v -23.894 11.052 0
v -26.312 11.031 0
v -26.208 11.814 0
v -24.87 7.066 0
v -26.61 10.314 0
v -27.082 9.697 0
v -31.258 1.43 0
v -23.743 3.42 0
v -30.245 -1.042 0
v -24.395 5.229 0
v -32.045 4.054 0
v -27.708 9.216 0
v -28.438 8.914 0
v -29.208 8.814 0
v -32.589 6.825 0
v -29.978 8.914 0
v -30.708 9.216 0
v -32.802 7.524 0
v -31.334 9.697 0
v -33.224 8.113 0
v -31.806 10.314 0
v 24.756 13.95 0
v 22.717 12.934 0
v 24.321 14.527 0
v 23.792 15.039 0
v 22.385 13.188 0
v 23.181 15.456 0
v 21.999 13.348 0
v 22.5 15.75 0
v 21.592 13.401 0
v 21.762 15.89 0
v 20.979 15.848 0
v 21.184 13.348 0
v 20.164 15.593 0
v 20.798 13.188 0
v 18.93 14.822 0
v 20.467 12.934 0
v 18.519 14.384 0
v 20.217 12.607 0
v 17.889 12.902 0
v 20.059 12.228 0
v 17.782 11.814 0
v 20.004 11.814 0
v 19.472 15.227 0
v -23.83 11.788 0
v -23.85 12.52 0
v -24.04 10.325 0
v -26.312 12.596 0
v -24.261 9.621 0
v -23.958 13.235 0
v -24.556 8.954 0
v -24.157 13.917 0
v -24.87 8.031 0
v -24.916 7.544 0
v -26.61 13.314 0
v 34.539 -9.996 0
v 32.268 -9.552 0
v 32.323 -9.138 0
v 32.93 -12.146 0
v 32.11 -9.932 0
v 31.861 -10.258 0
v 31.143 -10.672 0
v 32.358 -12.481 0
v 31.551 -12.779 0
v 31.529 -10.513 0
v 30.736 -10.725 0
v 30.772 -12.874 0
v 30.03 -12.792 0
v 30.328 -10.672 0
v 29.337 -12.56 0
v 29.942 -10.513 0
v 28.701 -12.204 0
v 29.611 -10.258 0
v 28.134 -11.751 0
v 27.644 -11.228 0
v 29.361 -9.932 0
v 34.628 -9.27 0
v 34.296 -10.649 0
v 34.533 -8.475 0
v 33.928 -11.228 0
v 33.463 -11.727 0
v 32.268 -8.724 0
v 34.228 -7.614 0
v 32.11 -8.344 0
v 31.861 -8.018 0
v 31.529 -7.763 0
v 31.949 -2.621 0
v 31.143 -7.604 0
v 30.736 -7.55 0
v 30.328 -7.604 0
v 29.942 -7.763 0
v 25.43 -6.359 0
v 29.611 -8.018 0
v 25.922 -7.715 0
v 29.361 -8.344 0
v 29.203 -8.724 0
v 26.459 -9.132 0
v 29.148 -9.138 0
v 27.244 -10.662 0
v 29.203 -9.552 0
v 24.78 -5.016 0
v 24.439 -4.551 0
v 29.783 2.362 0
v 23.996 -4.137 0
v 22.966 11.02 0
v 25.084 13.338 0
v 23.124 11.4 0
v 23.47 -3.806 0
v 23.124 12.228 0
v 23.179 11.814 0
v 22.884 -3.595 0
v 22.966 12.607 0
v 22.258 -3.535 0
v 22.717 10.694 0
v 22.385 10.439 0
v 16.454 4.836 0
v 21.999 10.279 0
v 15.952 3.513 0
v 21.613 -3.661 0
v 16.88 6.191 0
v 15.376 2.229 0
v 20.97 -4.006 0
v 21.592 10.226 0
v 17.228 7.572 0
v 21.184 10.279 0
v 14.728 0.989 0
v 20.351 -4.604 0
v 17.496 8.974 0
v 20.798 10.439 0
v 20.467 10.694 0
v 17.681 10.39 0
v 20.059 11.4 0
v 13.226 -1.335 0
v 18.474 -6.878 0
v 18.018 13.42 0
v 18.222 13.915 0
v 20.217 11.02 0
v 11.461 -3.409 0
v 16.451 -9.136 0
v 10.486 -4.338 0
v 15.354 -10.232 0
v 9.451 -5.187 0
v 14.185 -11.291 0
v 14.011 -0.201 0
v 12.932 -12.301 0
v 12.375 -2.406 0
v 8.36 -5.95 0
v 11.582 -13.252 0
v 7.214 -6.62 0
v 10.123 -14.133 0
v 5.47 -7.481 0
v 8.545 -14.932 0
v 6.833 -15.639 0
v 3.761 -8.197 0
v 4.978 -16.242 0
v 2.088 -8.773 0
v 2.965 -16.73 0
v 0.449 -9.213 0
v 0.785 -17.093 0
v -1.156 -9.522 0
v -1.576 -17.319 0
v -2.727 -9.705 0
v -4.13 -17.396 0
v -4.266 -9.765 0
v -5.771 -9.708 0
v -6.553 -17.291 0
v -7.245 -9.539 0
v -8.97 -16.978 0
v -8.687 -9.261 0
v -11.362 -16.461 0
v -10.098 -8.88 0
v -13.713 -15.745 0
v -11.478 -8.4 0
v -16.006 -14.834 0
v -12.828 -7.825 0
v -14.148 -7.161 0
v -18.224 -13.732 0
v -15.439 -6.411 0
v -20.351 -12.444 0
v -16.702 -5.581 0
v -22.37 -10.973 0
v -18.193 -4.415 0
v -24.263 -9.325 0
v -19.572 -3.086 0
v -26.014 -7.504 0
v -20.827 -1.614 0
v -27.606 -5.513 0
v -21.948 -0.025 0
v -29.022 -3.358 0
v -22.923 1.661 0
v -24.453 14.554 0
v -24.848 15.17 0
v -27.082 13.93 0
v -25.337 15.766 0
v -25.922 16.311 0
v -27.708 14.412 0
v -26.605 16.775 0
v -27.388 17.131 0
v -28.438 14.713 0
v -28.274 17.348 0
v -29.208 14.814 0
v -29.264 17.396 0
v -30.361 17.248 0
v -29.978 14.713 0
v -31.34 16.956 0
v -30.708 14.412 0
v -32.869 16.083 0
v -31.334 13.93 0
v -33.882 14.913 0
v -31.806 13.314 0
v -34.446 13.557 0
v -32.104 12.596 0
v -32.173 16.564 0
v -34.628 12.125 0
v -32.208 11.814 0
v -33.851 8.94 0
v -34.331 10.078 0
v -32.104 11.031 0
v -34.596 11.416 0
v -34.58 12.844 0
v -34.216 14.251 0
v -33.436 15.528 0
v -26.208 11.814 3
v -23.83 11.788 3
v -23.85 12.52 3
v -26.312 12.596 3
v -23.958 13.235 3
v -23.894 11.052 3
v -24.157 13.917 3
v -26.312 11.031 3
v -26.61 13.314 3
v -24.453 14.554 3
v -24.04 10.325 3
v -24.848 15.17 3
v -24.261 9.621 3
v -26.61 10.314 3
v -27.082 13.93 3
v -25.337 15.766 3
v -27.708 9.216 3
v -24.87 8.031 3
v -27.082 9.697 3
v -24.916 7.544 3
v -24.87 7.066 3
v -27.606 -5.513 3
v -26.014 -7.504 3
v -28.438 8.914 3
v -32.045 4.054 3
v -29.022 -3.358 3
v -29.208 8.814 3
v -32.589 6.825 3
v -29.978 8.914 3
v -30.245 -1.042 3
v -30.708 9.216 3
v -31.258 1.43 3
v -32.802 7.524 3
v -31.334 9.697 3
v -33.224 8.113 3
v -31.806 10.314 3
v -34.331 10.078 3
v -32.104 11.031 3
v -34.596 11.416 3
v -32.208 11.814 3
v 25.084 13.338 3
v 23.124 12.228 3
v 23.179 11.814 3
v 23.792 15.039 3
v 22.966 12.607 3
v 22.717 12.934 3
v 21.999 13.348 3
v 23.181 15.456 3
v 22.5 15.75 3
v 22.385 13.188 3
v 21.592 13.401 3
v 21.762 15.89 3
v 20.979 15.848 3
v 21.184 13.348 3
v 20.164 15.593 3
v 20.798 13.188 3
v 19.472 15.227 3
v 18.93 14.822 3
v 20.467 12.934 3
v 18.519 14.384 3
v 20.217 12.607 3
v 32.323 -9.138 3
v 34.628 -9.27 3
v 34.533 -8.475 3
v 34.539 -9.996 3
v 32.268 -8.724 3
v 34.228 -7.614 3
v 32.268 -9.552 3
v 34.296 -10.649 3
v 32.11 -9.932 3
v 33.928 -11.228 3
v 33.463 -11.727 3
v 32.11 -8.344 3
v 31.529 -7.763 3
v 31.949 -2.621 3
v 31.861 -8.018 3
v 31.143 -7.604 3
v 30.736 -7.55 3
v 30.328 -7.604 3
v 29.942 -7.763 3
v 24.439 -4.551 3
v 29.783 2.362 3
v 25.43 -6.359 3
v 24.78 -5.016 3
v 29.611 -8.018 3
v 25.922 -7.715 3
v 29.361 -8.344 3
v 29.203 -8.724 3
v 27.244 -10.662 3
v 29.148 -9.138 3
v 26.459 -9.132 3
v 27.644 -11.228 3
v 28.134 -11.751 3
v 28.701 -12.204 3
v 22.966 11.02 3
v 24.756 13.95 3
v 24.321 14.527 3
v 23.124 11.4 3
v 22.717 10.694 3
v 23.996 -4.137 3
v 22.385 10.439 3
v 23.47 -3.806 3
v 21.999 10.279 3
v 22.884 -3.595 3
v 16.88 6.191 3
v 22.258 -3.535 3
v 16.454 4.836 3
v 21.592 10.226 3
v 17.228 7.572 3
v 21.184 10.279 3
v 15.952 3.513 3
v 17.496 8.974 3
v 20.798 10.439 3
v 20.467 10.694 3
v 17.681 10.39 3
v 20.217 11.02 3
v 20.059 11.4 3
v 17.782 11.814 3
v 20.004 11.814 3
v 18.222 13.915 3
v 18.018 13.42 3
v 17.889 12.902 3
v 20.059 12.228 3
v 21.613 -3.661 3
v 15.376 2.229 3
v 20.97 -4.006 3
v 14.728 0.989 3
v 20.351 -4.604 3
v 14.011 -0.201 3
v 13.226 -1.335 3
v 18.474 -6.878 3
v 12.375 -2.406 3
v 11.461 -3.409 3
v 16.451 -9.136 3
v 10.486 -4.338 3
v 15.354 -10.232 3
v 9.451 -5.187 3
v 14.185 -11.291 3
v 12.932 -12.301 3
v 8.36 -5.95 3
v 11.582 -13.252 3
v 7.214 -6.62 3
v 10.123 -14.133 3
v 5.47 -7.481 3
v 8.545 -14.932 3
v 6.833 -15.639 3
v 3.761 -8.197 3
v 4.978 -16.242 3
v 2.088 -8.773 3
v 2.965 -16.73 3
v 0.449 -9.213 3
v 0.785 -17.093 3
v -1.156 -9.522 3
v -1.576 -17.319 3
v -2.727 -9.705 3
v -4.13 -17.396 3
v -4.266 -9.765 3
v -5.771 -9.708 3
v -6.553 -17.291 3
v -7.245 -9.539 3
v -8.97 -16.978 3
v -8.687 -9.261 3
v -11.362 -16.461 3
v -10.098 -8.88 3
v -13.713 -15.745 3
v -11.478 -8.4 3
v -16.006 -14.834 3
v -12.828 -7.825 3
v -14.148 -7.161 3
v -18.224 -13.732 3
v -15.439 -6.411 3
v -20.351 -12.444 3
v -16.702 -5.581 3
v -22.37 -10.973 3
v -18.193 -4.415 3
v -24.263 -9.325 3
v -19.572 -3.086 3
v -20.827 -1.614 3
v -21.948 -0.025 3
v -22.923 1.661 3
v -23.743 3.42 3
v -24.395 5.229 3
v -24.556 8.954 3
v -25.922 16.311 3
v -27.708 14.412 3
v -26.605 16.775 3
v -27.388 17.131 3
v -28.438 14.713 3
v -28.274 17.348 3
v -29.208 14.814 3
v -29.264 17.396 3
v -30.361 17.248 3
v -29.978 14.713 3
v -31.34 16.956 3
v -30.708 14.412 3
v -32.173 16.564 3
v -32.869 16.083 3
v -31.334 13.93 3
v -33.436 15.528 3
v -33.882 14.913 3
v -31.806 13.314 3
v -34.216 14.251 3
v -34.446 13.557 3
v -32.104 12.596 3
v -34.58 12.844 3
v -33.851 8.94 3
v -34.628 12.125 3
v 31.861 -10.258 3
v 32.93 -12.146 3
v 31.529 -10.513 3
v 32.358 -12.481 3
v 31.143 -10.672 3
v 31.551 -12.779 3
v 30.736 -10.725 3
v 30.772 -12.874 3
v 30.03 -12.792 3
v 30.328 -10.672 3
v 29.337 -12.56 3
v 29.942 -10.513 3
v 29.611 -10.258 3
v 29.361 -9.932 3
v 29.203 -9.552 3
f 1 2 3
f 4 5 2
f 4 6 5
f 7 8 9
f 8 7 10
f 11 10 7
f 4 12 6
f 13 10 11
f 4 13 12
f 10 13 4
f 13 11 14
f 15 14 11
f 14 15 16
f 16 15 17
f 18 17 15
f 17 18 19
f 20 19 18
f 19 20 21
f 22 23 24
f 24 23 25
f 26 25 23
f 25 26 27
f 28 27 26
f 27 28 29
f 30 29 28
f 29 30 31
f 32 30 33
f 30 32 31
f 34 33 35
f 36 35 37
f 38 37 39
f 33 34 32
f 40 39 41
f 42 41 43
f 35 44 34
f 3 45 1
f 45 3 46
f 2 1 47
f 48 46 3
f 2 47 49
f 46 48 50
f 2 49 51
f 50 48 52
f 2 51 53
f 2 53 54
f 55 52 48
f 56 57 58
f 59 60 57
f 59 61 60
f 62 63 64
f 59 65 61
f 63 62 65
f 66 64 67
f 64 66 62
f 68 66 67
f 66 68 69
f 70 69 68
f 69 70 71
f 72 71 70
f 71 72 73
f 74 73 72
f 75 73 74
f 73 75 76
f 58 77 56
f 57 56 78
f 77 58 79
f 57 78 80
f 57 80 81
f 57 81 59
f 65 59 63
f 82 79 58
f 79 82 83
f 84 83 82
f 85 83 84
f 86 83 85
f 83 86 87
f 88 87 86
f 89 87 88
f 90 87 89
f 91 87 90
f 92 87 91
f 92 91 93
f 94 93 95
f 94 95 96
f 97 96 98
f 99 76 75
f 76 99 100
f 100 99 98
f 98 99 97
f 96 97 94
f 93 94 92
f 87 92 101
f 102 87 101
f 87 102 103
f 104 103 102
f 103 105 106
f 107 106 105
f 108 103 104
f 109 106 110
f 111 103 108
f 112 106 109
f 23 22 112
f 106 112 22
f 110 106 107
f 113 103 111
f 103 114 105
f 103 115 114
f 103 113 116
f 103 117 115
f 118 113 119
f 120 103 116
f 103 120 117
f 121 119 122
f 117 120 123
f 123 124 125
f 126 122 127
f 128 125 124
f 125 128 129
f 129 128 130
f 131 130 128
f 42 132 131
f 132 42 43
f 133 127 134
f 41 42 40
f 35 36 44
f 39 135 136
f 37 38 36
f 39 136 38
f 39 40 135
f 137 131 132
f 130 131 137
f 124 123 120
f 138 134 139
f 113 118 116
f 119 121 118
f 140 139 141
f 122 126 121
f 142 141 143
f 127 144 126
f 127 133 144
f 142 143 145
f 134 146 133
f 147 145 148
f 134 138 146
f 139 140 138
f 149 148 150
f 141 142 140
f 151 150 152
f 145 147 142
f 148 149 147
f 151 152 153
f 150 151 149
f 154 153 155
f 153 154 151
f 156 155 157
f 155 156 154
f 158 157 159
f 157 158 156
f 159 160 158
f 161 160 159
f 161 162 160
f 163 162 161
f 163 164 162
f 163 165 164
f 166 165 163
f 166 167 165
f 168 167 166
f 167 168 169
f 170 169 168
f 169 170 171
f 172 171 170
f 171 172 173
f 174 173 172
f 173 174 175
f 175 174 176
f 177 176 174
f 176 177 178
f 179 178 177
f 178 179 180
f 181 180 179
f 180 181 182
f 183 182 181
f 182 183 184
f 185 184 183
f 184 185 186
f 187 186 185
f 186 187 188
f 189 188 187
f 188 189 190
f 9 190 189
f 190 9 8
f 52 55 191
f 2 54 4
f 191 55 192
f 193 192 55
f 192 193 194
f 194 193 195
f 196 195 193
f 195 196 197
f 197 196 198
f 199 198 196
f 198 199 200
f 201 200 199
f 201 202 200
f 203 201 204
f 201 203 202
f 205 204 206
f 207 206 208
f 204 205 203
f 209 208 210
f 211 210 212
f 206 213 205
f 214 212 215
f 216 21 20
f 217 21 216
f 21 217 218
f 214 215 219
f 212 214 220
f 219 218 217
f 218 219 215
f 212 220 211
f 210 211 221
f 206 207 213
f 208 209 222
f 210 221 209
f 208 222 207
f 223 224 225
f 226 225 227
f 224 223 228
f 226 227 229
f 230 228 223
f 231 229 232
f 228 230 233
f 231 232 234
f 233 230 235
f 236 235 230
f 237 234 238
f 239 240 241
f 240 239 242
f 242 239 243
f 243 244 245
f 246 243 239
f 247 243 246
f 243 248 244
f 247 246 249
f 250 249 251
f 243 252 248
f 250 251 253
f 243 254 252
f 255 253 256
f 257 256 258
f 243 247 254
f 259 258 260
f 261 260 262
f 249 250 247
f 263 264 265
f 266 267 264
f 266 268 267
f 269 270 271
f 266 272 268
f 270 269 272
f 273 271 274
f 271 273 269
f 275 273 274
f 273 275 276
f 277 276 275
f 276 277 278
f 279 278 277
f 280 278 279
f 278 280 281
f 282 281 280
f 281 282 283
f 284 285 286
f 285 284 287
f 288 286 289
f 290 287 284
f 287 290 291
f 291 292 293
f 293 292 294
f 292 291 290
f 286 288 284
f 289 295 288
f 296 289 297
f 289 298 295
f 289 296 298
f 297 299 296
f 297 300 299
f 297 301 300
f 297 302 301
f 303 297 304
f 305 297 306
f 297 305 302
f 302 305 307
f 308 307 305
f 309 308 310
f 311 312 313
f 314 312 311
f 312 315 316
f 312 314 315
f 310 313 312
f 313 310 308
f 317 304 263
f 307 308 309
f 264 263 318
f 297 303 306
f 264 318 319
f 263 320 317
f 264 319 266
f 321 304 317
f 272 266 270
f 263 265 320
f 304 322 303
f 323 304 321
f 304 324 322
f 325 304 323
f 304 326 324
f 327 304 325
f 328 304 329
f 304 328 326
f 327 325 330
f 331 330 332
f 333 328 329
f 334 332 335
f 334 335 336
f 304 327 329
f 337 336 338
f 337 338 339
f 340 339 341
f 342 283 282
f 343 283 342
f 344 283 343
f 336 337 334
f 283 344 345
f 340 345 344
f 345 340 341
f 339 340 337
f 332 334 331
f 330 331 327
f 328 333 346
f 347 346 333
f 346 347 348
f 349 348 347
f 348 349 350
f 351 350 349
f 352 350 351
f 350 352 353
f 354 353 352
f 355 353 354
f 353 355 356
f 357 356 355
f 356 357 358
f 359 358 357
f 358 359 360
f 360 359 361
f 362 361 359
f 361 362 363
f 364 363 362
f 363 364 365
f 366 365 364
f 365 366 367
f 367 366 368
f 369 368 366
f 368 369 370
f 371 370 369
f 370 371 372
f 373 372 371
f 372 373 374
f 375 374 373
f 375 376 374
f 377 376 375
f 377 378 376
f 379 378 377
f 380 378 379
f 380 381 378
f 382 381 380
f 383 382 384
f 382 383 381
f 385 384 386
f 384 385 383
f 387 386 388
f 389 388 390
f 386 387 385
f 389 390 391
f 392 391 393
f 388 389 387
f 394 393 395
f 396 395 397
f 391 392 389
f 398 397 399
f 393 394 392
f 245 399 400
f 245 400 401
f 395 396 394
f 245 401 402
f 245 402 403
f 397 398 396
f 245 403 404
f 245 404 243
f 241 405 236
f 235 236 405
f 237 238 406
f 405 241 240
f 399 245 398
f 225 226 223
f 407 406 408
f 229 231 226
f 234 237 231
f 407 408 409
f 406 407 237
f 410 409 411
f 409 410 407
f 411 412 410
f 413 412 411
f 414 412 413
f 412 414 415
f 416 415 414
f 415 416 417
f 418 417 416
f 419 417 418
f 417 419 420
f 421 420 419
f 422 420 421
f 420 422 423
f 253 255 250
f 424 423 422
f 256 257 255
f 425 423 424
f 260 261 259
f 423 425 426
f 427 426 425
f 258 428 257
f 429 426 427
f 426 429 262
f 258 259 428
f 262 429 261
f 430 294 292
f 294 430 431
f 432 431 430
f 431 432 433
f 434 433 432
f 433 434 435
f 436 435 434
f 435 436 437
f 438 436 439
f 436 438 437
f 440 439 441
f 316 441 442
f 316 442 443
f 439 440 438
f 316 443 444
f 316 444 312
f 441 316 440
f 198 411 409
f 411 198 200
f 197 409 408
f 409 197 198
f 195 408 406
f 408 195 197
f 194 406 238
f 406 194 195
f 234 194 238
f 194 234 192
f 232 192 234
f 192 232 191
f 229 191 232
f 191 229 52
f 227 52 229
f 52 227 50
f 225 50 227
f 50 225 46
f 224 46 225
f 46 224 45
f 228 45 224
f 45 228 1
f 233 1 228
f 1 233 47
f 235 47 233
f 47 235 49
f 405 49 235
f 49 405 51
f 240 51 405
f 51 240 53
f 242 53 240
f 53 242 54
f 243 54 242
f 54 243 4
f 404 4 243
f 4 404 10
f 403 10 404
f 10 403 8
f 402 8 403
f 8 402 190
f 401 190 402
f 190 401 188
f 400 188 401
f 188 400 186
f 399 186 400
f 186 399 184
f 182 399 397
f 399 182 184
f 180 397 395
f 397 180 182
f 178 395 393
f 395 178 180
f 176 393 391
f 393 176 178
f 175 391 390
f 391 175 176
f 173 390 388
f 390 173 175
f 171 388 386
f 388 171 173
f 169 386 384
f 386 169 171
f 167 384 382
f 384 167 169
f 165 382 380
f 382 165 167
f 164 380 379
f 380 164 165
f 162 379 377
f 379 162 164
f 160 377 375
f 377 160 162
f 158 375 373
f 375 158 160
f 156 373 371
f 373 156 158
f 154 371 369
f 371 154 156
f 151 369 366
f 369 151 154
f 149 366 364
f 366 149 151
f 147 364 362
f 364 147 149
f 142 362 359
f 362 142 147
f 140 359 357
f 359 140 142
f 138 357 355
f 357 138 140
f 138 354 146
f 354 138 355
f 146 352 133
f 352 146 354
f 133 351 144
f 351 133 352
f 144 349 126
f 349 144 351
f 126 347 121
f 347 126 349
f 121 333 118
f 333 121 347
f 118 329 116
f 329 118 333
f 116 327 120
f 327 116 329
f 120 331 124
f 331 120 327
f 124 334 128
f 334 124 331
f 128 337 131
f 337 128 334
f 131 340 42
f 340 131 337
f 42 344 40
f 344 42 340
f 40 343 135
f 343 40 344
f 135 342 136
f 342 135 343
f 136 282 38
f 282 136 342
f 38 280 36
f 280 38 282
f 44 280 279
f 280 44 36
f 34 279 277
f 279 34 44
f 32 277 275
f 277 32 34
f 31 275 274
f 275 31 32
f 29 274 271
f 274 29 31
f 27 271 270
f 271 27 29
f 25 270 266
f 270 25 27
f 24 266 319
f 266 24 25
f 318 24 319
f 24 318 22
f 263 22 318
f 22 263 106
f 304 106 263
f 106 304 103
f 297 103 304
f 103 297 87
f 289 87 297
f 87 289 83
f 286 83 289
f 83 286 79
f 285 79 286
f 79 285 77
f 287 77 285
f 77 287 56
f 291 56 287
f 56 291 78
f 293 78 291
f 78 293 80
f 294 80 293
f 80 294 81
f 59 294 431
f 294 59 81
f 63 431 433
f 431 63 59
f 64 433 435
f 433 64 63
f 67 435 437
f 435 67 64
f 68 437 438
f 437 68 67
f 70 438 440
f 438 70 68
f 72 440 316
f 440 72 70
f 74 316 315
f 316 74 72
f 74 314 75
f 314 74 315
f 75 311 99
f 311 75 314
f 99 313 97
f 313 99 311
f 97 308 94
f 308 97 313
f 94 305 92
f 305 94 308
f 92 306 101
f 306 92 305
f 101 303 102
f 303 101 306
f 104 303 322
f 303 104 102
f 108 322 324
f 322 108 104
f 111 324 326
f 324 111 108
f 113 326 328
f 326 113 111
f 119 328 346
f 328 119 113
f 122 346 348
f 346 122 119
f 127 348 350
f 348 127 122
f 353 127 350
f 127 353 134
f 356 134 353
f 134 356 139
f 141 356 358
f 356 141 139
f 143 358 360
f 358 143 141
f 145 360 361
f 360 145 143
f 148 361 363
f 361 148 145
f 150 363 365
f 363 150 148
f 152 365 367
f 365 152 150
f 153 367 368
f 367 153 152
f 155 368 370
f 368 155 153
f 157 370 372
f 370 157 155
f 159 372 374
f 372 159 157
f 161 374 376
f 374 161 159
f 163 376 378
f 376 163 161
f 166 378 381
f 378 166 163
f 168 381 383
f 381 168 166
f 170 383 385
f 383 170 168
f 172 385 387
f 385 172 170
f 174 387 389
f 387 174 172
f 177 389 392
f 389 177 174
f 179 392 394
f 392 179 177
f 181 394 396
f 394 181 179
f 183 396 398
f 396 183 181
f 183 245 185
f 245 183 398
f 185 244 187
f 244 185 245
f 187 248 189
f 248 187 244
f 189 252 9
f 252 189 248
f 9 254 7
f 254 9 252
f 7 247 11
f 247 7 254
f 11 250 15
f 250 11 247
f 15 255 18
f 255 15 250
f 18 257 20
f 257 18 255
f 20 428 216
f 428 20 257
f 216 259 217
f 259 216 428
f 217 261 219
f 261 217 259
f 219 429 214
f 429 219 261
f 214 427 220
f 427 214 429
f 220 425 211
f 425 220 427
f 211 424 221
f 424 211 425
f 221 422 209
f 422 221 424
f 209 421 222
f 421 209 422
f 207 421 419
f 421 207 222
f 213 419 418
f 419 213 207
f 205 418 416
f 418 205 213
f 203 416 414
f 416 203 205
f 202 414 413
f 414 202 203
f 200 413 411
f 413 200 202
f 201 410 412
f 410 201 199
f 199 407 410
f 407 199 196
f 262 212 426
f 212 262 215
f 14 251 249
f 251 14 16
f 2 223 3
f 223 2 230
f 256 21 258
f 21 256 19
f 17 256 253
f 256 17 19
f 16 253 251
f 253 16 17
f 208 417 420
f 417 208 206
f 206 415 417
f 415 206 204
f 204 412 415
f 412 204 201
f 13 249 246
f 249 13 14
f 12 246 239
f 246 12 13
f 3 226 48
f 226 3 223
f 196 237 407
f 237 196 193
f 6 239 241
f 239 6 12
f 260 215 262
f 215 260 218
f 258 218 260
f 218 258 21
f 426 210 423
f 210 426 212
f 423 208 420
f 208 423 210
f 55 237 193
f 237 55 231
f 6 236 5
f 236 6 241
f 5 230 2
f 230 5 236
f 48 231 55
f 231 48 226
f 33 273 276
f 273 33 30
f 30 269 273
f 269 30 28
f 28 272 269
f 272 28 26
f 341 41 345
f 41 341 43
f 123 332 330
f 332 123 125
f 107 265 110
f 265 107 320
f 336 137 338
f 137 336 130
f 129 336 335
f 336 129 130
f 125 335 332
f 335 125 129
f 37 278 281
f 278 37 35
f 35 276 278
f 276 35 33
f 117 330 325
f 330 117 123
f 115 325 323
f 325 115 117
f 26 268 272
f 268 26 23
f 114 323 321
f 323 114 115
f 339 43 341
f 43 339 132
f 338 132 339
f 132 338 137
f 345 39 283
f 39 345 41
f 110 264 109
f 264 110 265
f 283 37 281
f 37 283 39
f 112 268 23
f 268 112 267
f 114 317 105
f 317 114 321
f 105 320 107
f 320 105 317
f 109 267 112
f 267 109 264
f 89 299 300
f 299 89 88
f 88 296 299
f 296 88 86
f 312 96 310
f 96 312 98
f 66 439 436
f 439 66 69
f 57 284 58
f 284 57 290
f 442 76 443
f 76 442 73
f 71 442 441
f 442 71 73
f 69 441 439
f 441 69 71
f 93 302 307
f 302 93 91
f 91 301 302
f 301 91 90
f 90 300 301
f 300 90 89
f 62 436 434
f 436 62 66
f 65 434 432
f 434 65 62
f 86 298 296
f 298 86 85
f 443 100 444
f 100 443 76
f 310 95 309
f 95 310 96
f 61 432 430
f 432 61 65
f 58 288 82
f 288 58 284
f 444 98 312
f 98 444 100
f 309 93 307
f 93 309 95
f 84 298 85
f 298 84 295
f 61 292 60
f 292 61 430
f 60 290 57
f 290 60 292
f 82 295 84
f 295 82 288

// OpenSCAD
// Module names are of the form poly_<inkscape-path-id>().  As a result,
// you can associate a polygon in this OpenSCAD program with the corresponding
// SVG element in the Inkscape document by looking for the XML element with
// the attribute id="inkscape-path-id".

// fudge value is used to ensure that subtracted solids are a tad taller
// in the z dimension than the polygon being subtracted from.  This helps
// keep the resulting .stl file manifold.
fudge = 0.1;

module poly_path873(h)
{
  scale([25.4/96, -25.4/96, 1]) union()
  {
    difference()
    {
       linear_extrude(height=h)
         polygon([[-114.749108,-65.187982],[-110.603399,-65.749918],[-106.861079,-65.565708],[-103.513963,-64.746326],[-100.553867,-63.402744],[-97.972607,-61.645936],[-95.761998,-59.586874],[-93.913857,-57.336532],[-92.419998,-55.005882],[-91.303403,-52.599262],[-90.548407,-50.020585],[-90.140681,-47.321763],[-90.065893,-44.554707],[-90.309713,-41.771329],[-90.857809,-39.023541],[-91.695851,-36.363255],[-92.809508,-33.842382],[-93.998611,-30.353957],[-94.171622,-28.514101],[-93.995798,-26.704282],[-92.202305,-19.763076],[-89.736564,-12.925638],[-86.639634,-6.278184],[-82.952573,0.093068],[-78.716441,6.101902],[-73.972297,11.662099],[-68.761200,16.687444],[-63.124208,21.091718],[-58.353760,24.230239],[-53.474501,27.063878],[-48.484638,29.575312],[-43.382379,31.747220],[-38.165931,33.562278],[-32.833503,35.003164],[-27.383302,36.052556],[-21.813535,36.693131],[-16.122411,36.907566],[-10.308137,36.678539],[-4.368922,35.988728],[1.697029,34.820810],[7.891505,33.157463],[14.216301,30.981363],[20.673208,28.275189],[27.264018,25.021618],[31.596681,22.487275],[35.721753,19.604643],[39.631252,16.396353],[43.317197,12.885032],[46.771607,9.093311],[49.986503,5.043817],[52.953902,0.759181],[55.665825,-3.737969],[58.114291,-8.425004],[60.291318,-13.279295],[62.188927,-18.278212],[63.799135,-23.399127],[65.113964,-28.619411],[66.125431,-33.916434],[66.825556,-39.267567],[67.206358,-44.650182],[67.612850,-48.763883],[68.099409,-50.721004],[68.869645,-52.592519],[69.994663,-54.364093],[71.545564,-56.021387],[73.593452,-57.550062],[76.209428,-58.935782],[79.291158,-59.898255],[82.250234,-60.058519],[85.039785,-59.527940],[87.612940,-58.417882],[89.922828,-56.839712],[91.922576,-54.904794],[93.565313,-52.724496],[94.804168,-50.410182],[112.566722,-8.927332],[120.750722,9.907340],[129.364168,28.776718],[130.519755,32.032615],[130.876138,35.037488],[130.541630,37.780211],[129.624545,40.249656],[128.233197,42.434696],[126.475899,44.324204],[124.460965,45.907054],[122.296708,47.172118],[119.248209,48.299301],[116.303493,48.657465],[113.501024,48.347318],[110.879262,47.469568],[108.476670,46.124925],[106.331711,44.414096],[104.482846,42.437791],[102.968538,40.296718],[100.003386,34.516434],[97.973757,29.158268],[96.113296,24.034702],[93.655648,18.958218],[92.368379,17.200527],[90.691867,15.634157],[88.705726,14.386765],[86.489569,13.586006],[84.123010,13.359535],[81.685661,13.835010],[79.257136,15.140086],[76.917048,17.402418],[69.822514,25.996232],[62.175446,34.531646],[58.031444,38.672723],[53.613386,42.673522],[48.875964,46.492151],[43.773873,50.086718],[38.261804,53.415331],[32.294450,56.436096],[25.826503,59.107121],[18.812657,61.386515],[11.207604,63.232384],[2.966036,64.602836],[-5.957353,65.455978],[-15.607872,65.749918],[-24.768028,65.351606],[-33.900566,64.167525],[-42.941765,62.213958],[-51.827902,59.507190],[-60.495256,56.063503],[-68.880103,51.899182],[-76.918722,47.030509],[-84.547391,41.473768],[-91.702387,35.245243],[-98.319989,28.361217],[-104.336474,20.837973],[-109.688119,12.691796],[-114.311204,3.938969],[-118.142005,-5.404226],[-121.116800,-15.321504],[-123.171868,-25.796582],[-123.974698,-28.437369],[-125.571418,-30.662882],[-127.941354,-33.788398],[-129.754580,-38.088433],[-130.757633,-43.145747],[-130.876138,-45.827994],[-130.697051,-48.543094],[-130.188689,-51.238893],[-129.319370,-53.863234],[-128.057410,-56.363963],[-126.371127,-58.688924],[-124.228839,-60.785962],[-121.598861,-62.602921],[-118.449512,-64.087646],[-114.749108,-65.187982]]);
       translate([0, 0, -fudge])
         linear_extrude(height=h+2*fudge)
           polygon([[-99.055058,-44.650182],[-99.447549,-47.608619],[-100.574140,-50.319474],[-102.358514,-52.650559],[-104.724351,-54.469685],[-107.482677,-55.608996],[-110.393643,-55.988767],[-113.304609,-55.608996],[-116.062936,-54.469685],[-118.428772,-52.650559],[-120.213146,-50.319474],[-121.339738,-47.608619],[-121.732228,-44.650182],[-121.339738,-41.691745],[-120.213146,-38.980889],[-118.428772,-36.649805],[-116.062936,-34.830679],[-113.304609,-33.691368],[-110.393643,-33.311597],[-107.482677,-33.691368],[-104.724351,-34.830679],[-102.358514,-36.649805],[-100.574140,-38.980889],[-99.447549,-41.691745],[-99.055058,-44.650182],[-99.055058,-44.650182]]);
       translate([0, 0, -fudge])
         linear_extrude(height=h+2*fudge)
           polygon([[87.606358,-44.650182],[87.398665,-46.215688],[86.802510,-47.650182],[85.858279,-48.883714],[84.606358,-49.846334],[83.146744,-50.449220],[81.606358,-50.650182],[80.065972,-50.449220],[78.606358,-49.846334],[77.354436,-48.883714],[76.410205,-47.650182],[75.814051,-46.215688],[75.606358,-44.650182],[75.814051,-43.084676],[76.410205,-41.650182],[77.354436,-40.416650],[78.606358,-39.454030],[80.065972,-38.851144],[81.606358,-38.650182],[83.146744,-38.851144],[84.606358,-39.454030],[85.858279,-40.416650],[86.802510,-41.650182],[87.398665,-43.084676],[87.606358,-44.650182],[87.606358,-44.650182]]);
       translate([0, 0, -fudge])
         linear_extrude(height=h+2*fudge)
           polygon([[122.166358,34.536718],[121.958665,32.971212],[121.362510,31.536718],[120.418279,30.303186],[119.166358,29.340566],[117.706744,28.737680],[116.166358,28.536718],[114.625972,28.737680],[113.166358,29.340566],[111.914436,30.303186],[110.970205,31.536718],[110.374051,32.971212],[110.166358,34.536718],[110.374051,36.102224],[110.970205,37.536718],[111.914436,38.770250],[113.166358,39.732870],[114.625972,40.335756],[116.166358,40.536718],[117.706744,40.335756],[119.166358,39.732870],[120.418279,38.770250],[121.362510,37.536718],[121.958665,36.102224],[122.166358,34.536718],[122.166358,34.536718]]);
    }
  }
}

module inkscape(h)
{

poly_path873(h);
}

inkscape(3);
